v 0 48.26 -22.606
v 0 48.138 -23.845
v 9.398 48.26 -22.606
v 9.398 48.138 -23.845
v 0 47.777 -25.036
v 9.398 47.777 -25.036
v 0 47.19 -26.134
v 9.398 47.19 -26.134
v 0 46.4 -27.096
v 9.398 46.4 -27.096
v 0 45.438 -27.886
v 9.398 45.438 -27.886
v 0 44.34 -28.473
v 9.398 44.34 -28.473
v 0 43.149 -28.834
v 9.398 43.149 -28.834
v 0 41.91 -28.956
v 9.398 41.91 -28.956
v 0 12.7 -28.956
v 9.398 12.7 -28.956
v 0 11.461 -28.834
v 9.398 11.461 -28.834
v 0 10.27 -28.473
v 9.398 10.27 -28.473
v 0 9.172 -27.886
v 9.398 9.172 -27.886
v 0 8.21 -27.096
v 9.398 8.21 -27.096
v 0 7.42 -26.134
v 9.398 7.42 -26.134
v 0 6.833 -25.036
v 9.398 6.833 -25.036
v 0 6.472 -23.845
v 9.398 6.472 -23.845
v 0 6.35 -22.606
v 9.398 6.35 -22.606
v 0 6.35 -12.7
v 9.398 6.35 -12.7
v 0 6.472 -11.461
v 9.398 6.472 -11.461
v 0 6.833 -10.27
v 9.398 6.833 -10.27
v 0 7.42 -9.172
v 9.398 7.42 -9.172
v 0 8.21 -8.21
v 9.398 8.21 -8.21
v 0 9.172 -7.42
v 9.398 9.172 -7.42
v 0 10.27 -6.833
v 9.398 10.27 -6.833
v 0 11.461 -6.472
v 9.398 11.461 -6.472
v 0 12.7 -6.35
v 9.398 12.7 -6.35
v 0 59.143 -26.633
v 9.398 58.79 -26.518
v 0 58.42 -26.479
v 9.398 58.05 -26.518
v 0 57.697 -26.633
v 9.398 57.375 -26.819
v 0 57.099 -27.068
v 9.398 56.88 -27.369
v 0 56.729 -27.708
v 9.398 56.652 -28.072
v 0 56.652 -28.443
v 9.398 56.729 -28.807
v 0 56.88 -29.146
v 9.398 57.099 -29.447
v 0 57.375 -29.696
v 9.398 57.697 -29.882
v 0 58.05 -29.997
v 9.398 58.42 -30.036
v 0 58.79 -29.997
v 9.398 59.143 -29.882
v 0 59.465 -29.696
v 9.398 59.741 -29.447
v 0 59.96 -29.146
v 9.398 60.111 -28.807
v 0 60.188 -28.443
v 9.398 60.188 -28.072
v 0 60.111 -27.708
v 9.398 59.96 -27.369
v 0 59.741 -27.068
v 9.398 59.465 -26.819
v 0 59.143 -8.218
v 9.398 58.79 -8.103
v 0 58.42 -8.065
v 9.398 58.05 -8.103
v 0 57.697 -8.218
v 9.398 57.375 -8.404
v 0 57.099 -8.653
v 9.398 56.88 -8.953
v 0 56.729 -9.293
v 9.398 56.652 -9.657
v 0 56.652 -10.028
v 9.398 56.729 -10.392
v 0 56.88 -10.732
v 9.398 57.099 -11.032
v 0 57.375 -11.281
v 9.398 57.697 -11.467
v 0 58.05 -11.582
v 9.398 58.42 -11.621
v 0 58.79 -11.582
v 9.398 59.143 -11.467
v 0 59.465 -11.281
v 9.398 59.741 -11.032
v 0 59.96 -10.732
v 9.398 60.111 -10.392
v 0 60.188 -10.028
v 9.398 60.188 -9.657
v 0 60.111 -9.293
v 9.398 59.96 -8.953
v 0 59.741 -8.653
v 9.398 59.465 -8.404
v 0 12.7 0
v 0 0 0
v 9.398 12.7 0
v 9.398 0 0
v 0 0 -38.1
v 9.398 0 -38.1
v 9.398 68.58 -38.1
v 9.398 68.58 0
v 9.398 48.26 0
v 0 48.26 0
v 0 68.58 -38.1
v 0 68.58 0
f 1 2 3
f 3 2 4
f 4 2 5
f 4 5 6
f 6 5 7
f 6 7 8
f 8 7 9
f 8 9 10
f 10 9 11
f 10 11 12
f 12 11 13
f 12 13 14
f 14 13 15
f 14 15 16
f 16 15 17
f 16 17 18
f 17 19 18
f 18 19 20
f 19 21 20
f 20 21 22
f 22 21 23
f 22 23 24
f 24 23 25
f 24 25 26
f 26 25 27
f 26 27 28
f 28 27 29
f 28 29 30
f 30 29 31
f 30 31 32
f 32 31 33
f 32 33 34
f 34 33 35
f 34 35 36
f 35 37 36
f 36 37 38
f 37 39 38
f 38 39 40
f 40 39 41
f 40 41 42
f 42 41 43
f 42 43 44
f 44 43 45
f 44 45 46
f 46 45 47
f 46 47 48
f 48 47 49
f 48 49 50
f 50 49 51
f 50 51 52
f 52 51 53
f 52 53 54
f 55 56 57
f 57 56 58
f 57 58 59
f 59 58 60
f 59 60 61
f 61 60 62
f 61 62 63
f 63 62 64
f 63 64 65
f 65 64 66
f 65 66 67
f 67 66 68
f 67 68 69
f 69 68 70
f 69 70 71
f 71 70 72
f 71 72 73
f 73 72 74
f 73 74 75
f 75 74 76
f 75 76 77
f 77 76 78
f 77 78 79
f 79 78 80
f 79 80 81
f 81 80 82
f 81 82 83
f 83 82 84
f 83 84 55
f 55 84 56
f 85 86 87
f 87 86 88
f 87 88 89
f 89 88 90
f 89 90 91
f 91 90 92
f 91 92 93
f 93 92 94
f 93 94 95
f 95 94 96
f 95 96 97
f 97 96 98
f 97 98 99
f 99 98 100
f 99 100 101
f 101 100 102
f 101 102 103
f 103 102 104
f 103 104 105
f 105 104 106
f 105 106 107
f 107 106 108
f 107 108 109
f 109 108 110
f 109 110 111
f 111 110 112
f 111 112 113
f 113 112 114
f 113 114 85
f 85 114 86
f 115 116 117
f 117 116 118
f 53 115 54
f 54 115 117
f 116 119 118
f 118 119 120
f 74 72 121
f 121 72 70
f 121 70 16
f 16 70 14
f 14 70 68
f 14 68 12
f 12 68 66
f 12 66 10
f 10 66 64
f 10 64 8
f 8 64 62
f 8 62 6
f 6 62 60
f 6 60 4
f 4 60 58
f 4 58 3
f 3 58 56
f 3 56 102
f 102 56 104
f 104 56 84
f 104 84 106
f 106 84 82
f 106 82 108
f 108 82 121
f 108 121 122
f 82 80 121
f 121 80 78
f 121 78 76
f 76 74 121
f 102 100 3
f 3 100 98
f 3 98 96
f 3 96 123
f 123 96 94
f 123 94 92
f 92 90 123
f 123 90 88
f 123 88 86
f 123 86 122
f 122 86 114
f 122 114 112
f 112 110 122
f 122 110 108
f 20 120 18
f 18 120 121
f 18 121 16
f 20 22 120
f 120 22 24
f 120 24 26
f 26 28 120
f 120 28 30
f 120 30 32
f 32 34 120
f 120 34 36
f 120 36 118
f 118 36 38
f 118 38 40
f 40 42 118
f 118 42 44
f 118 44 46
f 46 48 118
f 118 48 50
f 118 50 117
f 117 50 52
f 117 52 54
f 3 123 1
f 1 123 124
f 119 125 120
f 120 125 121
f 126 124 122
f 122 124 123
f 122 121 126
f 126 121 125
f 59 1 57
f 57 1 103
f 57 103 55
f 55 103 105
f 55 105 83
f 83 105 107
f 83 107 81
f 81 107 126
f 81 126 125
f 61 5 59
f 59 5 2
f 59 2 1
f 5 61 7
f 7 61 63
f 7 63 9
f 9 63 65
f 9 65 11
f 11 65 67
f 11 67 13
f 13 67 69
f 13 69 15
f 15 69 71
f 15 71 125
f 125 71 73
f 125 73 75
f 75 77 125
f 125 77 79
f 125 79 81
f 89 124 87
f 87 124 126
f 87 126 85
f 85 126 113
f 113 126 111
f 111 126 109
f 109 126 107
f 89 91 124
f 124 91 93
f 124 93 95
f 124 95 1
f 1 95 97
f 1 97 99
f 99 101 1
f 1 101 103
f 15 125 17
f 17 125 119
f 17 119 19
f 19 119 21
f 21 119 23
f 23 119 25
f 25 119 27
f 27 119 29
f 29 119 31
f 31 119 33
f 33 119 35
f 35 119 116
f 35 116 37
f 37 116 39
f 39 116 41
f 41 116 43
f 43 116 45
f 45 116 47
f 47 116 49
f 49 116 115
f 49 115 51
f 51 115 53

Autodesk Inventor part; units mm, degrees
ref_plane "YZ Plane" through (0, 0, 0) normal (1, 0, 0) x (0, 1, 0)
ref_plane "XZ Plane" through (0, 0, 0) normal (0, 1, 0) x (-1, 0, 0)
ref_plane "XY Plane" through (0, 0, 0) normal (0, 0, 1) x (1, 0, 0)
sketch "Sketch1" plane through (0, 0, 0) normal (1, 0, 0) x (0, 1, 0)
  line L0 (0, 0) -> (0, -38.1)
  line L1 (0, -38.1) -> (68.58, -38.1)
  line L2 (68.58, -38.1) -> (68.58, -28.956)
  line L3 (68.58, -28.956) -> (6.35, -28.956)
  line L4 (0, 0) -> (12.7, 0)
  line L5 (12.7, 0) -> (12.7, -6.35)
  line L6 (12.7, -6.35) -> (6.35, -6.35)
  line L7 (0, 0) -> (6.35, 0)
  line L8 (6.35, -6.35) -> (6.35, -28.956)
  line L9 (68.58, -38.1) -> (48.26, -38.1)
  line L10 (48.26, -38.1) -> (48.26, 0)
  line L11 (48.26, 0) -> (68.58, 0)
  line L12 (68.58, 0) -> (68.58, -38.1)
  dimension "d0" = 38.1
  dimension "d1" = 68.58
  dimension "d2" = 9.144
  dimension "d3" = 6.35
  dimension "d4" = 12.7
  dimension "d5" = 6.35
  dimension "d6" = 6.35
  dimension "d10" = 20.32
  dimension "d11" = 38.1
extrude "Extrusion2" add sketch "Sketch1" along normal blind 9.398
sketch "Sketch2" plane through (9.398, 0, 0) normal (1, 0, 0) x (0, 0, -1)
  line L0 (28.956, 48.26) -> (28.956, 6.35) projected
  line L1 (28.956, 6.35) -> (6.35, 6.35) projected
  line L2 (6.35, 6.35) -> (6.35, 12.7) projected
  line L3 (6.35, 12.7) -> (0, 12.7) projected
  line L4 (0, 12.7) -> (0, 0) projected
  line L5 (0, 0) -> (38.1, 0) projected
  line L6 (38.1, 0) -> (38.1, 68.58) projected
  line L7 (38.1, 68.58) -> (0, 68.58) projected
  line L8 (0, 68.58) -> (0, 48.26) projected
  line L9 (0, 48.26) -> (28.956, 48.26) projected
  point P0 (28.2575, 58.42)
  point P1 (9.8425, 58.42)
  dimension "d14" = 18.415
  dimension "d15" = 38.1
  dimension "d16" = 9.8425
  dimension "d17" = 20.32
  dimension "d18" = 10.16
  dimension "d19" = 10.16
hole "Hole1" at (9.398, 58.42, -28.2575) at (9.398, 58.42, -9.8425) direction (-1, 0, 0) diameter 3.556 depth 10.9728 tip angle 118
fillet "Fillet2" radius 6.35 3 edges at (4.699, 6.35, -6.35) (4.699, 6.35, -28.956) (4.699, 48.26, -28.956)
equation "\"d16\" = -0.5 * d14 + 0.5 * d15"
equation "\"d18\" = 0.5 * d17"
equation "\"d19\" = d18"
properties part number "hook"
